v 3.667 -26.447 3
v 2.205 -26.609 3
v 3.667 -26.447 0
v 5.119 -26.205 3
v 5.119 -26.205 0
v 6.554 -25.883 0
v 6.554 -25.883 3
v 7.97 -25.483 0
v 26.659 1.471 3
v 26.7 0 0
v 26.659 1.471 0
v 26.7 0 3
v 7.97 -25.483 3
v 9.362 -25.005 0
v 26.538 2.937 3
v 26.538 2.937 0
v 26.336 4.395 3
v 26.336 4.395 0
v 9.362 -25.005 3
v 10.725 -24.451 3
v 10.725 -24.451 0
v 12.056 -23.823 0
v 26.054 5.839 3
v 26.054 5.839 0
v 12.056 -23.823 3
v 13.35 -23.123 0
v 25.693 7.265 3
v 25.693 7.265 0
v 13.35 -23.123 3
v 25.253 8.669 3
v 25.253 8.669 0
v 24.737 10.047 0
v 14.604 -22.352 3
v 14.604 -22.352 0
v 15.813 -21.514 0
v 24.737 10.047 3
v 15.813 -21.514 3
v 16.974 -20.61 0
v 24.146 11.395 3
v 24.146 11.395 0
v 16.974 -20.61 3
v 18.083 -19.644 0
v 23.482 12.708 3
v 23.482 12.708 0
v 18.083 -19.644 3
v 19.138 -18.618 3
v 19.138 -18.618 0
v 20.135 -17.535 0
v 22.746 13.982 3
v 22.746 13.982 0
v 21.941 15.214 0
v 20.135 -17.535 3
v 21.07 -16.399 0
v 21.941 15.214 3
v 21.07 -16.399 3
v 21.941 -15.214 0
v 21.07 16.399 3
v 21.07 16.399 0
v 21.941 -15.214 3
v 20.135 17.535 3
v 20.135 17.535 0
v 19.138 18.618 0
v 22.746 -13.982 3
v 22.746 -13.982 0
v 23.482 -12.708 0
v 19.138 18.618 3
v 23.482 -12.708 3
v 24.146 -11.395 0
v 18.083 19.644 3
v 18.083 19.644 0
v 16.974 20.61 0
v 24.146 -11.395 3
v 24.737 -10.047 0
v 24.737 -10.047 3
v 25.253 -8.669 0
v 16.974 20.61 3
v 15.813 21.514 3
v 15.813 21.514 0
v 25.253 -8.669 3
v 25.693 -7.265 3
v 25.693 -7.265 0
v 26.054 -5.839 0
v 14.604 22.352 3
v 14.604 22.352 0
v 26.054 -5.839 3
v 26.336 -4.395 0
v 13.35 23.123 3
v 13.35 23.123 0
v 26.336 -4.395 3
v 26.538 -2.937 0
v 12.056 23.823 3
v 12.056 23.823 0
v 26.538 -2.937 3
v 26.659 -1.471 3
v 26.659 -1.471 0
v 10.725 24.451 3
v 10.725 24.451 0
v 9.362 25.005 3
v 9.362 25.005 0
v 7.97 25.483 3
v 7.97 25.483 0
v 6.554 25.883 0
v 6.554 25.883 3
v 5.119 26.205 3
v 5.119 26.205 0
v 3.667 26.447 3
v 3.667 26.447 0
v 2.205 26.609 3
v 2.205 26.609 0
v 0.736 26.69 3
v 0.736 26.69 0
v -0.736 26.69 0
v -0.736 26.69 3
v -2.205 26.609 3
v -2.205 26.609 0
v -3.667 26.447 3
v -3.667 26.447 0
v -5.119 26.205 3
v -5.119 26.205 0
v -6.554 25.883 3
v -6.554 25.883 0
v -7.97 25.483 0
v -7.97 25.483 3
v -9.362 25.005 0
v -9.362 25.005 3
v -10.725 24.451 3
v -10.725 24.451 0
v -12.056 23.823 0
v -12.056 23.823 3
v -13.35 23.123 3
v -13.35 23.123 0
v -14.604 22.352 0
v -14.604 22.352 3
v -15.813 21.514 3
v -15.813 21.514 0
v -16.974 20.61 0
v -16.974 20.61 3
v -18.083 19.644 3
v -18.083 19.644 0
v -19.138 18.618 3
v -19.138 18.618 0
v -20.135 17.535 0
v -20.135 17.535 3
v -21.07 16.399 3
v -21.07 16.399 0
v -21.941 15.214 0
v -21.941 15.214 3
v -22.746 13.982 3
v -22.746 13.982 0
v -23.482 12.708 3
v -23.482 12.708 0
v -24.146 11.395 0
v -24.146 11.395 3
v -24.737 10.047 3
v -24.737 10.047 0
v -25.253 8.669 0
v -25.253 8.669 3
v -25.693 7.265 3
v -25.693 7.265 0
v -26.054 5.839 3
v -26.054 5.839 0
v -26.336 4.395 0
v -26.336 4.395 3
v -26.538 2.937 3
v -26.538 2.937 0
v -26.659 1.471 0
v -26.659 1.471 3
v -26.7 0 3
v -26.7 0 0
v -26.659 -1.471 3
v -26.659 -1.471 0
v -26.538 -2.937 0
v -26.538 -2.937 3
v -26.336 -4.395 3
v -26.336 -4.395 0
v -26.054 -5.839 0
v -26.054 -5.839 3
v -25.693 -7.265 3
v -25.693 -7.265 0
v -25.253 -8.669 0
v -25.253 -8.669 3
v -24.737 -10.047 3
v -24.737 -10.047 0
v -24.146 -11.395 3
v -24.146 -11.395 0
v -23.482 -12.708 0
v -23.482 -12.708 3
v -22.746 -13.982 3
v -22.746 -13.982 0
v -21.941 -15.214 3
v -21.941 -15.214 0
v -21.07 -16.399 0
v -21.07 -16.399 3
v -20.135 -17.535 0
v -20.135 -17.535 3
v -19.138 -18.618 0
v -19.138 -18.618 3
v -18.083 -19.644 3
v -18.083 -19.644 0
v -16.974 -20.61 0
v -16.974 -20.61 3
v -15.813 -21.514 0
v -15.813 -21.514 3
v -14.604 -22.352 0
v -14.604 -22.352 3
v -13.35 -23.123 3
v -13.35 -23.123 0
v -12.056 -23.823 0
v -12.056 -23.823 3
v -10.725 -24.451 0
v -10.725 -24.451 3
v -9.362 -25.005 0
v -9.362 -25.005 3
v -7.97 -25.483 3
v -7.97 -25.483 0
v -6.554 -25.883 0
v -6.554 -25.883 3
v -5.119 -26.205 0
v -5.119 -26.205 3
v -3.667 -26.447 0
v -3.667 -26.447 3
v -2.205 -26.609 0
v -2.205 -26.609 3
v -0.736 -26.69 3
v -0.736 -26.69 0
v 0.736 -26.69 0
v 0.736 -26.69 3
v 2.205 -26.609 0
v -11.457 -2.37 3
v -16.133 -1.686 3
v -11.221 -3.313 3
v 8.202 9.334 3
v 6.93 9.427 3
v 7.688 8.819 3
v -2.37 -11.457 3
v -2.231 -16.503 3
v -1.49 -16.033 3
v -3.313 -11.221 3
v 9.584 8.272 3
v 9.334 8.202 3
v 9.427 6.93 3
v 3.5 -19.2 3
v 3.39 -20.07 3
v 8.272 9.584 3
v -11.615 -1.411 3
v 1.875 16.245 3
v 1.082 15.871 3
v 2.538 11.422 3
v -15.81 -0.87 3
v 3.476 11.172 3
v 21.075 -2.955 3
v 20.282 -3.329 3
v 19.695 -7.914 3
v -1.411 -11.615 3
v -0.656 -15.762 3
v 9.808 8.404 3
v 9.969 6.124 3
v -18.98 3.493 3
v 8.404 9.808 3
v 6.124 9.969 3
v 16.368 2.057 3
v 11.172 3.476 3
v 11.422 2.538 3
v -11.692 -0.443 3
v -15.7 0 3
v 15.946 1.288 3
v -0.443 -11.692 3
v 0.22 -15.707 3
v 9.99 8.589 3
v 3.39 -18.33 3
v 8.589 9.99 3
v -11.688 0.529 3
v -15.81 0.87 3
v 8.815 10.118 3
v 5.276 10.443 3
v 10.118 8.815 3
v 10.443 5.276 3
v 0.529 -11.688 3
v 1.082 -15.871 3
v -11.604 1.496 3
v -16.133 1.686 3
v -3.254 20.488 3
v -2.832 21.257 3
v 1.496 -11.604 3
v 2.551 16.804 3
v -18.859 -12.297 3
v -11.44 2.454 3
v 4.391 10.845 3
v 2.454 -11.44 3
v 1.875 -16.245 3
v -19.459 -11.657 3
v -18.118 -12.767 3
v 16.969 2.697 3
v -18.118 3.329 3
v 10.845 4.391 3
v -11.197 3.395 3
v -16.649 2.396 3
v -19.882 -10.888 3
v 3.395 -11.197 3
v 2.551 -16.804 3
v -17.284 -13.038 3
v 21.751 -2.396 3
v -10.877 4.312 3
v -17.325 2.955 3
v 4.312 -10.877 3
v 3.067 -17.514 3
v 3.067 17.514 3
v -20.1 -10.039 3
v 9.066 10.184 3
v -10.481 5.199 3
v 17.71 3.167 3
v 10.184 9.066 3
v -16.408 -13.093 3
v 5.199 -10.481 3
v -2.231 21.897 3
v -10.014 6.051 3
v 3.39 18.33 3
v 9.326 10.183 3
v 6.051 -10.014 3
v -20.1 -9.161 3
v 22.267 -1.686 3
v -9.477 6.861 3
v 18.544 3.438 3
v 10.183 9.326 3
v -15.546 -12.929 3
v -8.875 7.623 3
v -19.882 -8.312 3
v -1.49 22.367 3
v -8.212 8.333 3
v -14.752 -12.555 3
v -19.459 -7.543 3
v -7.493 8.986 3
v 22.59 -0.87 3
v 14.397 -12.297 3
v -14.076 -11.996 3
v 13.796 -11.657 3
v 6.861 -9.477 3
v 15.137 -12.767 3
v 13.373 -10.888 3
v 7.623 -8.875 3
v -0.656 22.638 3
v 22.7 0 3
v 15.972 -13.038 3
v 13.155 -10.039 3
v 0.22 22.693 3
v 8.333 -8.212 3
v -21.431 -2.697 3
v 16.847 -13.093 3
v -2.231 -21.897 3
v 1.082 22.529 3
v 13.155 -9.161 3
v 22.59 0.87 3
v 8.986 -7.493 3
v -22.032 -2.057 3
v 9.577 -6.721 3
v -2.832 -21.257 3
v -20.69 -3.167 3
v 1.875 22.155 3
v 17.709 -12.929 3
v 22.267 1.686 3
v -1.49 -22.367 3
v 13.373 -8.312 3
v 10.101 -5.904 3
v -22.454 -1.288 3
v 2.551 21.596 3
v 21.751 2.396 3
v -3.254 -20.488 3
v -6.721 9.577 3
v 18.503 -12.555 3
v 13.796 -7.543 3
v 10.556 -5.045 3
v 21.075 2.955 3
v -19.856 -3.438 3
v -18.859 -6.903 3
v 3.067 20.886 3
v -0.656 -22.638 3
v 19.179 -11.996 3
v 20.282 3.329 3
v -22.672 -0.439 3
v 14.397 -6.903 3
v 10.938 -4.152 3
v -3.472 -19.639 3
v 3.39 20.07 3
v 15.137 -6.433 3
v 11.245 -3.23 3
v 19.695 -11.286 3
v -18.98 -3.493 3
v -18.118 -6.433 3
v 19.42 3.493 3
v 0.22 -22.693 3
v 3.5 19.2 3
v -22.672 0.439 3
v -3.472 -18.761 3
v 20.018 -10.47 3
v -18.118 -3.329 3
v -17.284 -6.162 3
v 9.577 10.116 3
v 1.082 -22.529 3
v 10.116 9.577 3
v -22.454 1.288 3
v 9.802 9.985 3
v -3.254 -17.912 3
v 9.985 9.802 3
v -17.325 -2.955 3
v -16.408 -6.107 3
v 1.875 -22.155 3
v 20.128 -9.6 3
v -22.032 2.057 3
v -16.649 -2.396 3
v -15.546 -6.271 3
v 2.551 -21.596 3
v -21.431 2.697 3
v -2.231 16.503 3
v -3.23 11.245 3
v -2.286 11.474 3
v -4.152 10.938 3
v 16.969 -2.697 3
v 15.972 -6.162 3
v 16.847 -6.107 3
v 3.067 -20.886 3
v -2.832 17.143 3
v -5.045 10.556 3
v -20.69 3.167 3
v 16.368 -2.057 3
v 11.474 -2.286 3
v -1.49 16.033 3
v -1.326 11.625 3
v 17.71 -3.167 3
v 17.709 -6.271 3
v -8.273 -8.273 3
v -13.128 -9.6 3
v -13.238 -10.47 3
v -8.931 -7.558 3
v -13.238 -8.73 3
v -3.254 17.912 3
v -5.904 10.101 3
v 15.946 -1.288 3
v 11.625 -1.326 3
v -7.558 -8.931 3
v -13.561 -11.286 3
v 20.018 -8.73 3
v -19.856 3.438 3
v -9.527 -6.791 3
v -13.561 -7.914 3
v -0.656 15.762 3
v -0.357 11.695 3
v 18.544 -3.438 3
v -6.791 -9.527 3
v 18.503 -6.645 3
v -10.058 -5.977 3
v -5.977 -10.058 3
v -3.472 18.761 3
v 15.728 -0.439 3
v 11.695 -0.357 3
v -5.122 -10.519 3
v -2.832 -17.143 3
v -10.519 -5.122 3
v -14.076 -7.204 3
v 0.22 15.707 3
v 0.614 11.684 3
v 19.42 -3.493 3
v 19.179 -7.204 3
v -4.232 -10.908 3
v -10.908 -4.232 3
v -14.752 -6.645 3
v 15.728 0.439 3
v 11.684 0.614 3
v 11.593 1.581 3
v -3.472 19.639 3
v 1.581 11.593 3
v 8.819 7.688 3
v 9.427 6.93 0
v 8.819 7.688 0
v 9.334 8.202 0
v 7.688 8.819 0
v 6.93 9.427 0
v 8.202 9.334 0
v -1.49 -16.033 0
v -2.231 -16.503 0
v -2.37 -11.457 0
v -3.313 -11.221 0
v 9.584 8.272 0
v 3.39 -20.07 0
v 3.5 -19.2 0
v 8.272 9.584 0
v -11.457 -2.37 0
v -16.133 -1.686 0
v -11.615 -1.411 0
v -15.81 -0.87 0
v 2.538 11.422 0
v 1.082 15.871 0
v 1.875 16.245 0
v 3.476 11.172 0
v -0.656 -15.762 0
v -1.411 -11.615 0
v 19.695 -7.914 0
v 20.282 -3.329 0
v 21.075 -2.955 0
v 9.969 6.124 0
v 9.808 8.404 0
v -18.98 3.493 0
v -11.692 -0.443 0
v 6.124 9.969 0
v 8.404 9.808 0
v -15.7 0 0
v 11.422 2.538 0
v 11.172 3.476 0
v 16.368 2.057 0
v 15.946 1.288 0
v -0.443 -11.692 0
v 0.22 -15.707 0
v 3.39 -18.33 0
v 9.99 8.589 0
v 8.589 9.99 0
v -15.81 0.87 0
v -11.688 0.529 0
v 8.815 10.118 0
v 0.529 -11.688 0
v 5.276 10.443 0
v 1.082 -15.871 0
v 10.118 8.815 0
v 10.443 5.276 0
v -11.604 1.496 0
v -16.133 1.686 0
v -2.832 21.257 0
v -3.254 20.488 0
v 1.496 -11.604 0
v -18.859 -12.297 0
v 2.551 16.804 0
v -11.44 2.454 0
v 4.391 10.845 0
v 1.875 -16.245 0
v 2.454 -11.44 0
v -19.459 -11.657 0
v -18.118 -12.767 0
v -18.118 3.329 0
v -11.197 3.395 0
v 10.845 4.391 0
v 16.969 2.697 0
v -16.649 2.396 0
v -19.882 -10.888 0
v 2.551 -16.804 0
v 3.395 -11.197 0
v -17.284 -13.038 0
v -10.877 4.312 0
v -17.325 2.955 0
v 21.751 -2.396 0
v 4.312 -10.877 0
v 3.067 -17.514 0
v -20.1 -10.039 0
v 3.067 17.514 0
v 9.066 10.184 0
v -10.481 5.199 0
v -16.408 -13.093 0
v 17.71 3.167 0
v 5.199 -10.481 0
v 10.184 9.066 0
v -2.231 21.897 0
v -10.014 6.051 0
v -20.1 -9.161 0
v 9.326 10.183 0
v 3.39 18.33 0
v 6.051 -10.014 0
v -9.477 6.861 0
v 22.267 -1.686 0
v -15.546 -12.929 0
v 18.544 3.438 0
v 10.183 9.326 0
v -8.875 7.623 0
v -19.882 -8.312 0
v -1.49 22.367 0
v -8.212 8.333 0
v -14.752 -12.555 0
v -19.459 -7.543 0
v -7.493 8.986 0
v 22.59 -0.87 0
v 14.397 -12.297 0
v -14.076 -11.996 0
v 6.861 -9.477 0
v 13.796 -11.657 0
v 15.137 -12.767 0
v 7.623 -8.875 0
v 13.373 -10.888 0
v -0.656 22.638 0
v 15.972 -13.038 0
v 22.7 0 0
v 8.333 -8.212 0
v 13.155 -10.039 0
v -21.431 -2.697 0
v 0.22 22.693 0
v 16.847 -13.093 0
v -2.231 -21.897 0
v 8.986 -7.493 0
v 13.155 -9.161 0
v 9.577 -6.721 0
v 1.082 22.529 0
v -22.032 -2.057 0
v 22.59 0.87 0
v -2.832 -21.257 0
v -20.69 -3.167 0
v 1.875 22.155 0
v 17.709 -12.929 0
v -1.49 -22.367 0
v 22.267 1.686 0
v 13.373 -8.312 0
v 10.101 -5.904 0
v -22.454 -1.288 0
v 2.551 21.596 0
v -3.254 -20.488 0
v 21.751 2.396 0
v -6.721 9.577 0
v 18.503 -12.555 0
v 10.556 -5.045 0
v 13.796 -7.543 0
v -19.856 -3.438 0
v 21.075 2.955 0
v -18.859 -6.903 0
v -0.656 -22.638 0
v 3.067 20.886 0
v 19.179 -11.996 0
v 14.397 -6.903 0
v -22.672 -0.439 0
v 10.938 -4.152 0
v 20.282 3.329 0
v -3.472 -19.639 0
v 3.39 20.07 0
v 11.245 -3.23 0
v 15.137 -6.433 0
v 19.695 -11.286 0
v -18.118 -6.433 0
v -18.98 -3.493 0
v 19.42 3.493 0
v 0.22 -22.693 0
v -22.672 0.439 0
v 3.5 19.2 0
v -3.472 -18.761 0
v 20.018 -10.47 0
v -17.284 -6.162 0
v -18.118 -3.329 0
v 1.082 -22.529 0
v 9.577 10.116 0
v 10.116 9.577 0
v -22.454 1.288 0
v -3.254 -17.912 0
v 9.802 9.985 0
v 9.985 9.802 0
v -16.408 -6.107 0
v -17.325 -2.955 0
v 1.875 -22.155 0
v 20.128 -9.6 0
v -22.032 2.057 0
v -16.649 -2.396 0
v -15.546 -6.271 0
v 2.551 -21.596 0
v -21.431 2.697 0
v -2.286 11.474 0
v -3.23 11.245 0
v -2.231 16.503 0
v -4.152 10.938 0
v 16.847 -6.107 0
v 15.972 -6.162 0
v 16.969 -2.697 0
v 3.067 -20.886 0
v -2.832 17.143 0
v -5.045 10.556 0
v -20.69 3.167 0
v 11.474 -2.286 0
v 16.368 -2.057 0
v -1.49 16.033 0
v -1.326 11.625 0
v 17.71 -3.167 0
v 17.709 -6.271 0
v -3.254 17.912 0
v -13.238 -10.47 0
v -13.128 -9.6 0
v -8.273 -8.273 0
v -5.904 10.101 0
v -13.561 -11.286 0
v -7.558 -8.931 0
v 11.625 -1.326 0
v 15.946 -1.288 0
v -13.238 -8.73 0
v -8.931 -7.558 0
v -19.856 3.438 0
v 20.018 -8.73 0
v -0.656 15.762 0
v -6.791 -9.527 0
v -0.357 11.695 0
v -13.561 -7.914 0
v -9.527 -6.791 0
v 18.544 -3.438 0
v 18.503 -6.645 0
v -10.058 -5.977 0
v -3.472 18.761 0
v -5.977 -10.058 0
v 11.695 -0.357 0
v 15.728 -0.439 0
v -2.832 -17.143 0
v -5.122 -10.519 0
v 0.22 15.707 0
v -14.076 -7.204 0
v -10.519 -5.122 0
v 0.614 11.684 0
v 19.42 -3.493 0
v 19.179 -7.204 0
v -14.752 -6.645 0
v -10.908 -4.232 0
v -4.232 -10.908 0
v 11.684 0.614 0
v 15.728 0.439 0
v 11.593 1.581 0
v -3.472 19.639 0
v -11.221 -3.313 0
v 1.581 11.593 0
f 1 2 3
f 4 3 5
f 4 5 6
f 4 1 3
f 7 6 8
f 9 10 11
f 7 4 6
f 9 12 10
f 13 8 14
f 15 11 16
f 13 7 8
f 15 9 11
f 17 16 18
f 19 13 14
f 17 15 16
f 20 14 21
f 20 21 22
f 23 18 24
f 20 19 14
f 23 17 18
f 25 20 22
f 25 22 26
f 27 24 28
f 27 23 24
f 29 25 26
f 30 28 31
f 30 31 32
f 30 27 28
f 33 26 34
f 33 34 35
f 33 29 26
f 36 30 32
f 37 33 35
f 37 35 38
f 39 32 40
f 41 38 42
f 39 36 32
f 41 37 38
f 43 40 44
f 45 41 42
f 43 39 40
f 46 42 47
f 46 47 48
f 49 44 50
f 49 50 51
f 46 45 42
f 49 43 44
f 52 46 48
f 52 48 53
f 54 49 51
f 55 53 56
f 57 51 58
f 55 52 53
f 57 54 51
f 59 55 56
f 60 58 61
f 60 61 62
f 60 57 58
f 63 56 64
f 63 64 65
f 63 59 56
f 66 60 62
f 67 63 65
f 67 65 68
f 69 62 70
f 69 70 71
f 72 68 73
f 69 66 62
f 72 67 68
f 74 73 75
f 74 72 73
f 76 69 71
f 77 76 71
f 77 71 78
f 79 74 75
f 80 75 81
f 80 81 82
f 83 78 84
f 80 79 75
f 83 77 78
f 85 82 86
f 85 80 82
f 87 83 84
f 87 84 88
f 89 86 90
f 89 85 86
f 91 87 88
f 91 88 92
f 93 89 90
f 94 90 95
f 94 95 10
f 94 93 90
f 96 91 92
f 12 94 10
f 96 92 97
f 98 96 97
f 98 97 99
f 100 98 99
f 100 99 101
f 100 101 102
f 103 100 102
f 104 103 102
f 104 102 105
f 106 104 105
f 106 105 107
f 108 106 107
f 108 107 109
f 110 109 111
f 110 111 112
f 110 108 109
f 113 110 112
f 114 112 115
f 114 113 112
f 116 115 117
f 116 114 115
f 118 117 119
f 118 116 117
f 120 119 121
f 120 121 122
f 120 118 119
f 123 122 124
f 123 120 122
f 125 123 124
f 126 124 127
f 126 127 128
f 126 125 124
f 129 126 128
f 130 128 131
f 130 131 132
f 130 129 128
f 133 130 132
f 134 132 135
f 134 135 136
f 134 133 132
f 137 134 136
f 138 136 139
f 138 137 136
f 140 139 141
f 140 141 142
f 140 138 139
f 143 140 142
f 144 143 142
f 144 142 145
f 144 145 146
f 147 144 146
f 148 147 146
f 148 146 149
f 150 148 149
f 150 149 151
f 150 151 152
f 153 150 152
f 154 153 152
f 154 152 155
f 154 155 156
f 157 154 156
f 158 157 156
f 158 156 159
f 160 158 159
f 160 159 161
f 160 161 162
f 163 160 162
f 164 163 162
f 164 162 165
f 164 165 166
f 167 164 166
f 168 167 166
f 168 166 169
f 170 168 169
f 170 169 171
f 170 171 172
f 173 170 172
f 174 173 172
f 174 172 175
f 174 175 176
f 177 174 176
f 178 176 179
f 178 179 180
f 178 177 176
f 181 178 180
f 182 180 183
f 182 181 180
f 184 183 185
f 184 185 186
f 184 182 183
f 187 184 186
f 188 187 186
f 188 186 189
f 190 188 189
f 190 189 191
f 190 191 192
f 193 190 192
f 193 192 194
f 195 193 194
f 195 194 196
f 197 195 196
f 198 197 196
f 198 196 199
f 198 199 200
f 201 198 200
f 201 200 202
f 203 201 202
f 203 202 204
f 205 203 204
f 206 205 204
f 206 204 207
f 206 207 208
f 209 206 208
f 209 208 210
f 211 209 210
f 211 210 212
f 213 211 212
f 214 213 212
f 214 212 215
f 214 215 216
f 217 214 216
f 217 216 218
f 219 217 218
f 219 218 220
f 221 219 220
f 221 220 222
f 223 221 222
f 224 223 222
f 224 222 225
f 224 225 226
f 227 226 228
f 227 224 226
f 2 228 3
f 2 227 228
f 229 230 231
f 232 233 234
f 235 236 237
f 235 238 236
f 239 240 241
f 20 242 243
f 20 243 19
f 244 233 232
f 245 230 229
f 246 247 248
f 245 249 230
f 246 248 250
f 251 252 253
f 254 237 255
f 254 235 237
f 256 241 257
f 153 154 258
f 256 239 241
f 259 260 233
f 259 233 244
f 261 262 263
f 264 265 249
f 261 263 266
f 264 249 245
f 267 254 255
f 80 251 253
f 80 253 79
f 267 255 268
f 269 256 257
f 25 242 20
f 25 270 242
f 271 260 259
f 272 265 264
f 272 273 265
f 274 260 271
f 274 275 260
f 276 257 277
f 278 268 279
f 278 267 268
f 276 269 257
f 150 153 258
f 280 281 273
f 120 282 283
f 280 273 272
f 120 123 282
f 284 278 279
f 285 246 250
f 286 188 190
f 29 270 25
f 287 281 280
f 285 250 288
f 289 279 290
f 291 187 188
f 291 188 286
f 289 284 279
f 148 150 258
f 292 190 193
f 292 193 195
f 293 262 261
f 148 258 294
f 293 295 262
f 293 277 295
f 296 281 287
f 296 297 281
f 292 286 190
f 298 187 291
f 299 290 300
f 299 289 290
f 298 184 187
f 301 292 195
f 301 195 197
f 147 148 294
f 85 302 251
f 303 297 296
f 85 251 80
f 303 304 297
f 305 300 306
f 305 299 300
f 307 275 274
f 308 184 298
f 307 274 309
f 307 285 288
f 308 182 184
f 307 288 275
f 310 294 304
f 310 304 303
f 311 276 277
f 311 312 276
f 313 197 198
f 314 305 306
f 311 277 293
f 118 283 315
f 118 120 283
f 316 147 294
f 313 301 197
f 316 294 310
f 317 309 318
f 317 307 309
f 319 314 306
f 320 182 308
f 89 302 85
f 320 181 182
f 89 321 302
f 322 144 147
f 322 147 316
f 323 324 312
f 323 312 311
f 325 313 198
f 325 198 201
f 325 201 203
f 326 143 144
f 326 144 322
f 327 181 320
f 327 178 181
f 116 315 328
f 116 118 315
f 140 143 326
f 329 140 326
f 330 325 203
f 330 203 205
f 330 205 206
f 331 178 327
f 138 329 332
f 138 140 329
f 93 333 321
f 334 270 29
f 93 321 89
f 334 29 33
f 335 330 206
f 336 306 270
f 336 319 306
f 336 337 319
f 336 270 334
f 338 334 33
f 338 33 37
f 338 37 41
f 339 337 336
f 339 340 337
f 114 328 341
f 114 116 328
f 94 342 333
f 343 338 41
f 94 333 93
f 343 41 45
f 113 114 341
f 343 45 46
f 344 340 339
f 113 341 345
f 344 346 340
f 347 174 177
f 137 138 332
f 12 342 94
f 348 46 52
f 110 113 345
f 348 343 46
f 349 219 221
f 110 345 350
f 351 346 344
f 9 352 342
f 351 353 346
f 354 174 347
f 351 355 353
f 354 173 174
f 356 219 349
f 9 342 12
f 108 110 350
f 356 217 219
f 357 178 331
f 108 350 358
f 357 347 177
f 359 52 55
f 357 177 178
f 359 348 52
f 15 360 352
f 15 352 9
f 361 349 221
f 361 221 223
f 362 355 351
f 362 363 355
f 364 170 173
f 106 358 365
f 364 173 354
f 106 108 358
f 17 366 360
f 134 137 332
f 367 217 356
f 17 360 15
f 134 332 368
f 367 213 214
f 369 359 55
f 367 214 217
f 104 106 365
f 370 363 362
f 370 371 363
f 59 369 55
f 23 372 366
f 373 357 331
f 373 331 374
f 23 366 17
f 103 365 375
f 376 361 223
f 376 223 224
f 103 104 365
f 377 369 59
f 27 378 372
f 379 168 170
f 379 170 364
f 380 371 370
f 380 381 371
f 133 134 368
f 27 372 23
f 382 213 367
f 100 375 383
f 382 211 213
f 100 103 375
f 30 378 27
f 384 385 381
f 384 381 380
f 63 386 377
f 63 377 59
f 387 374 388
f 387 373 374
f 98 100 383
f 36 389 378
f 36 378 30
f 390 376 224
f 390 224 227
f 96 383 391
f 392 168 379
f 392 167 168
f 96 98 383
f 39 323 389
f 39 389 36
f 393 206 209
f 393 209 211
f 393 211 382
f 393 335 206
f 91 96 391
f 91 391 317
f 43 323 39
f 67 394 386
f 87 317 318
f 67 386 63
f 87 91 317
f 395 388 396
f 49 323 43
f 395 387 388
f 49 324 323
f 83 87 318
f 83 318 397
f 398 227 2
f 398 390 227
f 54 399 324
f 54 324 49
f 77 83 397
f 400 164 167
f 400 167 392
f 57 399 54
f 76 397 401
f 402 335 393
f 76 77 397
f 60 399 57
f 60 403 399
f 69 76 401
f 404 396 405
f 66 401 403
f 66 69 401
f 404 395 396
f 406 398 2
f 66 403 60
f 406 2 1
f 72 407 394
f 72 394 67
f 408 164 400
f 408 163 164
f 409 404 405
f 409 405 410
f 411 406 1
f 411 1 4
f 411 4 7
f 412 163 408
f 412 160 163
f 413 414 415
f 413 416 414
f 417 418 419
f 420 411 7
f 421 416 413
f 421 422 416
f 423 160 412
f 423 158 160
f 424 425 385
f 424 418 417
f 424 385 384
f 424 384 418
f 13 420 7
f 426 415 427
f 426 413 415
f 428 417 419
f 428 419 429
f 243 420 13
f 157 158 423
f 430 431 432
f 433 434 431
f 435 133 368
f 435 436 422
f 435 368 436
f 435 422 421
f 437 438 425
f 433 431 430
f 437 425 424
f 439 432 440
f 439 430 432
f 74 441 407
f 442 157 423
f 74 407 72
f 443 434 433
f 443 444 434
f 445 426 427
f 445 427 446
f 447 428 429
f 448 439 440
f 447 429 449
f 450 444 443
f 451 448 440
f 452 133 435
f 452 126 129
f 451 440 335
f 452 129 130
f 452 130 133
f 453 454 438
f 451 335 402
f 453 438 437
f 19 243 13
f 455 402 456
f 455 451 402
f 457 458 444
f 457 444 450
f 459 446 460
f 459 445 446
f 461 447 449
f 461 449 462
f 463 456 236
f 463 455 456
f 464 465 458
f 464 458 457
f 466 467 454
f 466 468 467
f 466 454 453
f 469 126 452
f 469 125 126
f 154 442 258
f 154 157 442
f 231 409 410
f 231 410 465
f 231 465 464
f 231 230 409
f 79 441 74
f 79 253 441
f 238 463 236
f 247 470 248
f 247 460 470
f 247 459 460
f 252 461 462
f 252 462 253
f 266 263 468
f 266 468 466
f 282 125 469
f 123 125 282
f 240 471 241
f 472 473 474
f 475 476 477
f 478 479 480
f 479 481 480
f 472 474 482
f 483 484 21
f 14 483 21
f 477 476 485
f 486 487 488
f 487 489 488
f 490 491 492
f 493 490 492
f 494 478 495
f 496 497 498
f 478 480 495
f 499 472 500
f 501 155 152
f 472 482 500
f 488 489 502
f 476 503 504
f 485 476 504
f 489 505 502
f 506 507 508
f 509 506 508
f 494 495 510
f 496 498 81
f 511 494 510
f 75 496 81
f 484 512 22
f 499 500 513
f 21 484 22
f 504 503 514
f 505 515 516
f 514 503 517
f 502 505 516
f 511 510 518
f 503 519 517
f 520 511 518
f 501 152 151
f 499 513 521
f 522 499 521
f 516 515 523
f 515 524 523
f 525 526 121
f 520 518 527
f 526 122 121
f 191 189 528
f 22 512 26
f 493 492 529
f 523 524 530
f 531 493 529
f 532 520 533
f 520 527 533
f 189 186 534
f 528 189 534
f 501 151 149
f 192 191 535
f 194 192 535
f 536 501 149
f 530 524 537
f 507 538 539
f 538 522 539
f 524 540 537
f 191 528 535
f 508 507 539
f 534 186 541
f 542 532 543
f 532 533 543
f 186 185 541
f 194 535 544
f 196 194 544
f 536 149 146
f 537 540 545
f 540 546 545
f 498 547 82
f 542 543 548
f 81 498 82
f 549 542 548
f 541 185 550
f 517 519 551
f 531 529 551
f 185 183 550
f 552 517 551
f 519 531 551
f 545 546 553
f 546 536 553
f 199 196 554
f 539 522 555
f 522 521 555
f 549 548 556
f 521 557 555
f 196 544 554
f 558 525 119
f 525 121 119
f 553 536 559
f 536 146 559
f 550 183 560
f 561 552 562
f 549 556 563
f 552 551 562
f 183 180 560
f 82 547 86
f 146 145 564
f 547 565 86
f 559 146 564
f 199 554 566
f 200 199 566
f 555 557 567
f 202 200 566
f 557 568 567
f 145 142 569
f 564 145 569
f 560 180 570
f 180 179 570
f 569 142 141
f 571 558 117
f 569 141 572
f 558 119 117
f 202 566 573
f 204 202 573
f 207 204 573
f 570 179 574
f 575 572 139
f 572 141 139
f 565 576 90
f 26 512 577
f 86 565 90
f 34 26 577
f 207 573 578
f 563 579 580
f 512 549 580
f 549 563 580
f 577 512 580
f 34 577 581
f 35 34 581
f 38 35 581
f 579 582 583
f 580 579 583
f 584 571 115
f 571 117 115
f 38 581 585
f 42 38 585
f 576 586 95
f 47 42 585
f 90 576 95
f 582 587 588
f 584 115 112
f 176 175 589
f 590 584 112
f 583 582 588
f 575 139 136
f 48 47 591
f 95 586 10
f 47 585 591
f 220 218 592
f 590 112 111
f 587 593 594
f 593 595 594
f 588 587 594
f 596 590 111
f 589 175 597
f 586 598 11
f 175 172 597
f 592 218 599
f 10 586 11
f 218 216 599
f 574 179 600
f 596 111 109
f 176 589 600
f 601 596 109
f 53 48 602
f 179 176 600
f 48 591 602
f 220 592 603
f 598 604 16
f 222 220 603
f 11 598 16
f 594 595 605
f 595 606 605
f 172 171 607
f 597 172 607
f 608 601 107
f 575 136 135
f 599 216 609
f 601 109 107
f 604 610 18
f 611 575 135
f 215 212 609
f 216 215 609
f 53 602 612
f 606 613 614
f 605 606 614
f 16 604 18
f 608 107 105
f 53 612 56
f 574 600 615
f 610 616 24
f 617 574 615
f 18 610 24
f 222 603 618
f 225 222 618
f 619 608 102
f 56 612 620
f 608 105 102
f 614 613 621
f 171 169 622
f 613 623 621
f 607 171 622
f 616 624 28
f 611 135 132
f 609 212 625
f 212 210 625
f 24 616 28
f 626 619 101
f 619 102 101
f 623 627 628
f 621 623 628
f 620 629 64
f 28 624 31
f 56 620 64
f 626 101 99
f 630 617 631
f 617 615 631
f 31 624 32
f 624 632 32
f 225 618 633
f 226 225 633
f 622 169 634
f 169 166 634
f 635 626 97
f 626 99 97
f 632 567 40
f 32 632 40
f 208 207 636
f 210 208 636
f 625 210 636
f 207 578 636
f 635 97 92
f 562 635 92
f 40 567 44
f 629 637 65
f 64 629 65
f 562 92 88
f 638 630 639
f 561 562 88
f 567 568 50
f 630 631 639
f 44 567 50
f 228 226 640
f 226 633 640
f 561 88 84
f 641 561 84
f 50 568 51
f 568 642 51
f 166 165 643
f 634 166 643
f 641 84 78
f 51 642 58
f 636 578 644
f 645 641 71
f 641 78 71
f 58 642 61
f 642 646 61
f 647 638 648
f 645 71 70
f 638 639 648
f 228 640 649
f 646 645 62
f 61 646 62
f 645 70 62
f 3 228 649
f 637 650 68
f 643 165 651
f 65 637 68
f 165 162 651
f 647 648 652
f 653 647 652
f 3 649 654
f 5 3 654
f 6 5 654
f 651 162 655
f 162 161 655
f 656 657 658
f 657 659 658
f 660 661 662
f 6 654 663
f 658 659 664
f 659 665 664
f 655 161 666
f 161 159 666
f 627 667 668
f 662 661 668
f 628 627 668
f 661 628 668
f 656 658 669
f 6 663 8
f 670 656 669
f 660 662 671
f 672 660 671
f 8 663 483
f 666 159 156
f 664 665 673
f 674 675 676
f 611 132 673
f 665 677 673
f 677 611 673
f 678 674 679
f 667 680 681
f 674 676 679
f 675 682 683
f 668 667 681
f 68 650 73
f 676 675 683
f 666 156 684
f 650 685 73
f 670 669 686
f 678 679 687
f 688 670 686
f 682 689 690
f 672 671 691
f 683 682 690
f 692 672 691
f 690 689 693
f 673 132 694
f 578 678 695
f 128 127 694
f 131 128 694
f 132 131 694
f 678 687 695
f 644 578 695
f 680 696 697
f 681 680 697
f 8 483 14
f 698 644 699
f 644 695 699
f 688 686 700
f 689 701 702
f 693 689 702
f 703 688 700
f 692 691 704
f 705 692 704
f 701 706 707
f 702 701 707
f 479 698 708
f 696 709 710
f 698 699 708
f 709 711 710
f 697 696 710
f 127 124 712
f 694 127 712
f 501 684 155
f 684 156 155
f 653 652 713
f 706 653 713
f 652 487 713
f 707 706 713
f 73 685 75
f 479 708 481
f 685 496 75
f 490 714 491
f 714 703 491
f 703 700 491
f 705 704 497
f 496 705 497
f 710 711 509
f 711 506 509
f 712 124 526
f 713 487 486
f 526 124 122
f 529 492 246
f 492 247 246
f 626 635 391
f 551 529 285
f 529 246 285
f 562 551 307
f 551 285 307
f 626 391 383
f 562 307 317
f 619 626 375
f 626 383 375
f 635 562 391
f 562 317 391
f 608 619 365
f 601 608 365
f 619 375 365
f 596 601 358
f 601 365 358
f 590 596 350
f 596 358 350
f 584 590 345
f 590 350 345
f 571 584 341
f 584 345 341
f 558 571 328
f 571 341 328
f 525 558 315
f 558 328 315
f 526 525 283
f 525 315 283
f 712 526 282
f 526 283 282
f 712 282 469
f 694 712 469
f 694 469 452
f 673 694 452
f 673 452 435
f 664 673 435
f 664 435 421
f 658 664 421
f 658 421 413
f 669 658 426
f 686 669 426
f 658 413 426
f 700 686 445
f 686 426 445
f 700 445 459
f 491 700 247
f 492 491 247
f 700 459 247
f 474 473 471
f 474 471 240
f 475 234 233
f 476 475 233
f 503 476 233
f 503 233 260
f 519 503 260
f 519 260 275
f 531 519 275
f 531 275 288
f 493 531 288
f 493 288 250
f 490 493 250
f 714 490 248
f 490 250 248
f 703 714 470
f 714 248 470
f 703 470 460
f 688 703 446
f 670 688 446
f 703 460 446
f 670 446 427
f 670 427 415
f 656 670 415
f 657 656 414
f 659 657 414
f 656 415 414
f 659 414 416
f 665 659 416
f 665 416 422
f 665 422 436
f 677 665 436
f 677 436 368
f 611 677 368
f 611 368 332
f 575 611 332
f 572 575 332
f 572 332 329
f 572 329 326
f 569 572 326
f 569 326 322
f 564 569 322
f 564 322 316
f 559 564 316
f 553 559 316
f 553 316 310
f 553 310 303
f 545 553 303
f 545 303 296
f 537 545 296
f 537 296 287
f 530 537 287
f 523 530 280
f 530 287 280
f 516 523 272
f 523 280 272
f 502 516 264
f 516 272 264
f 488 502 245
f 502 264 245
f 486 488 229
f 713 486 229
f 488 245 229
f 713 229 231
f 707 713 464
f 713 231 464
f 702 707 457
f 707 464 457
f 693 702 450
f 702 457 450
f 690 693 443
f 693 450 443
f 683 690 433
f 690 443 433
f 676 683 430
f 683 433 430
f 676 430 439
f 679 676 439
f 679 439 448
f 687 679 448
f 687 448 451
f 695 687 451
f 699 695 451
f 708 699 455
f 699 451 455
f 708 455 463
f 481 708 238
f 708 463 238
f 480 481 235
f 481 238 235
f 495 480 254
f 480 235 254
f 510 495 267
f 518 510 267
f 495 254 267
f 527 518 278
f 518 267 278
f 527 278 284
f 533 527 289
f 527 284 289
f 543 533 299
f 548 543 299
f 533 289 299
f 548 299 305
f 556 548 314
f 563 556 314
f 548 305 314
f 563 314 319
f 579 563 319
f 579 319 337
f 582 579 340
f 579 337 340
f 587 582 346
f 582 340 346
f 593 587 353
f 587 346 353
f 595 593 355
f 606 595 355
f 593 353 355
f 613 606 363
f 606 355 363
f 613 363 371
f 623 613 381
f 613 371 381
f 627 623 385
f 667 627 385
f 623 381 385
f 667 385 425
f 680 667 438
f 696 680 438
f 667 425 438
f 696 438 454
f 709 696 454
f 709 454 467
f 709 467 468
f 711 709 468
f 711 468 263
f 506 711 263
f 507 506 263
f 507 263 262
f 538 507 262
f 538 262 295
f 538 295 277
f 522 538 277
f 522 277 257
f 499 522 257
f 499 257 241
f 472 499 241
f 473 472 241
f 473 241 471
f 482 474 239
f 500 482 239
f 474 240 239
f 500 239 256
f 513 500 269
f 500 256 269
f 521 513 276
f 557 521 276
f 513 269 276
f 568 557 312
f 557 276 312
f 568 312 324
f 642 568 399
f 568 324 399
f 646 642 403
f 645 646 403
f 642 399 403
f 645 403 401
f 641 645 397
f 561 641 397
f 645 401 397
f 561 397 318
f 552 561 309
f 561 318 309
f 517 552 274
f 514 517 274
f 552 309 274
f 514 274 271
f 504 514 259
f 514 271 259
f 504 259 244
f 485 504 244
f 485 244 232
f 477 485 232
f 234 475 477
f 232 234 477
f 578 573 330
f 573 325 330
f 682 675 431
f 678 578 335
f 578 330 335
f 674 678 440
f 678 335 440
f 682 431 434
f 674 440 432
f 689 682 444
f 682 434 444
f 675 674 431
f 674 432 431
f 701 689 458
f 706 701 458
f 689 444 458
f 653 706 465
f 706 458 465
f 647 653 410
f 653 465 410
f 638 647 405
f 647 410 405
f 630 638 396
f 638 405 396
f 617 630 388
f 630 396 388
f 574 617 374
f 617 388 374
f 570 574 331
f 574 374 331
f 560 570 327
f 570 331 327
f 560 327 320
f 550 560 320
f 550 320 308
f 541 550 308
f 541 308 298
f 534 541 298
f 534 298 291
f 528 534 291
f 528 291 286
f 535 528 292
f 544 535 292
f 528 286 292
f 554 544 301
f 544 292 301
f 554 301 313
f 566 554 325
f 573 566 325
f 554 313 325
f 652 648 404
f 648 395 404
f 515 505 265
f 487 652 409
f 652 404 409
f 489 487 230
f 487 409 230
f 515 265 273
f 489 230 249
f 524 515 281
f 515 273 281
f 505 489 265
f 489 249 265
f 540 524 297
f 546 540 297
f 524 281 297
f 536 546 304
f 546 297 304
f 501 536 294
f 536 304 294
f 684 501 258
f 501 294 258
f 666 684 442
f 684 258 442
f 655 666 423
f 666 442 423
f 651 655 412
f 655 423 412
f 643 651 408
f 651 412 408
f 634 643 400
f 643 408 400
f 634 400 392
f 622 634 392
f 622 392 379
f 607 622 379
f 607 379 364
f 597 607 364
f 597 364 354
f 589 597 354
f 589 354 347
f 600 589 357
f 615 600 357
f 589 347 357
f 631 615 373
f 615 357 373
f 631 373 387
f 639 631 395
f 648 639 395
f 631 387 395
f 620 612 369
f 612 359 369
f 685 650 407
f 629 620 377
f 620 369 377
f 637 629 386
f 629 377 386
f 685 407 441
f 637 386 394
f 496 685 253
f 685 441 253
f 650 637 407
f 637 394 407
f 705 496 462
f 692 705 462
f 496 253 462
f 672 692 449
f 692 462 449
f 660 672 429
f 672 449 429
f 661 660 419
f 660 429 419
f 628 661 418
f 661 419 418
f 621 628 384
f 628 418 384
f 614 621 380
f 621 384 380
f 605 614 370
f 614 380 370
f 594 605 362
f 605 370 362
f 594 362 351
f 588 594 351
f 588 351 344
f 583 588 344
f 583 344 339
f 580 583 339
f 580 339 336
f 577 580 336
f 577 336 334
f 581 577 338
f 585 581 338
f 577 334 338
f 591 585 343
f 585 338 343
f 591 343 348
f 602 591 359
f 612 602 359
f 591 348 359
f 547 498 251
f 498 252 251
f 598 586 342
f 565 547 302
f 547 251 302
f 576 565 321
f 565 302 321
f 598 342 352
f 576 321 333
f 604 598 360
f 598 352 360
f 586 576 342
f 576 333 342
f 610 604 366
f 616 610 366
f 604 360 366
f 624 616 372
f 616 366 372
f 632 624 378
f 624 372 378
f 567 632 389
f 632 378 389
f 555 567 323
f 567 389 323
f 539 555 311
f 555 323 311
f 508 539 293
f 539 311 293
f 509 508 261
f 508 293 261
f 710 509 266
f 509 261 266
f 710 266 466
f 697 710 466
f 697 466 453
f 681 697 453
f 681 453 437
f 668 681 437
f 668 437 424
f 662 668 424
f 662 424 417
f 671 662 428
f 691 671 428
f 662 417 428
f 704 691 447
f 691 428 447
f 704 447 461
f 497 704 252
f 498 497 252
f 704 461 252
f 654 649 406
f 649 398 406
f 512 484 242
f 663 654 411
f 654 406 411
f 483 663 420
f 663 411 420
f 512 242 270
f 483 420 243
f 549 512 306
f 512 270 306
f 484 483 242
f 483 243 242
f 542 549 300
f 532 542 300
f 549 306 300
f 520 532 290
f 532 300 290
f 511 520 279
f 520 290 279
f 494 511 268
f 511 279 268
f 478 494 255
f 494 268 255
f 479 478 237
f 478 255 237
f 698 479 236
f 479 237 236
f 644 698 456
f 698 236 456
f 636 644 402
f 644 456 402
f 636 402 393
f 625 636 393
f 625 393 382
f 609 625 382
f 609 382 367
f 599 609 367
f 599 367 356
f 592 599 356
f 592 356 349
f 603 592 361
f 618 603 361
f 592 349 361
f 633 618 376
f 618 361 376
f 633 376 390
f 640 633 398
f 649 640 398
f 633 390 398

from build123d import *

# Parameters (mm, degrees)
CYLINDER_R     = 26.7
CYLINDER_DEPTH = 3
SKETCH_R       = 3.5
POCKET_DEPTH   = 3


with BuildPart() as part:
    # Cylinder → Cylinder (new body)
    with BuildSketch(Plane.XY):
        Circle(CYLINDER_R)
    extrude(amount=CYLINDER_DEPTH)

    # Sketch → Pocket (cut)
    with BuildSketch(Plane.XY.offset(3)):
        with Locations((0, 19.2)):
            Circle(SKETCH_R)
        with Locations((16.6277, -9.6)):
            Circle(SKETCH_R)
        with Locations((-16.6277, -9.6)):
            Circle(SKETCH_R)
        with Locations((0, -19.2)):
            Circle(SKETCH_R)
        with Locations((-19.2, 0)):
            Circle(SKETCH_R)
        with Locations((19.2, 0)):
            Circle(SKETCH_R)
        with BuildLine():
            ThreePointArc((7.688102, 8.819472), (-8.273149, -8.273149), (8.819472, 7.688102))
            Line((8.819472, 7.688102), (9.333811, 8.202441))
            ThreePointArc((9.333811, 8.202441), (9.899497, 9.899497), (8.202441, 9.333811))
            Line((7.688102, 8.819472), (8.202441, 9.333811))
        make_face()
    extrude(amount=-POCKET_DEPTH, mode=Mode.SUBTRACT)


solid = part.part
